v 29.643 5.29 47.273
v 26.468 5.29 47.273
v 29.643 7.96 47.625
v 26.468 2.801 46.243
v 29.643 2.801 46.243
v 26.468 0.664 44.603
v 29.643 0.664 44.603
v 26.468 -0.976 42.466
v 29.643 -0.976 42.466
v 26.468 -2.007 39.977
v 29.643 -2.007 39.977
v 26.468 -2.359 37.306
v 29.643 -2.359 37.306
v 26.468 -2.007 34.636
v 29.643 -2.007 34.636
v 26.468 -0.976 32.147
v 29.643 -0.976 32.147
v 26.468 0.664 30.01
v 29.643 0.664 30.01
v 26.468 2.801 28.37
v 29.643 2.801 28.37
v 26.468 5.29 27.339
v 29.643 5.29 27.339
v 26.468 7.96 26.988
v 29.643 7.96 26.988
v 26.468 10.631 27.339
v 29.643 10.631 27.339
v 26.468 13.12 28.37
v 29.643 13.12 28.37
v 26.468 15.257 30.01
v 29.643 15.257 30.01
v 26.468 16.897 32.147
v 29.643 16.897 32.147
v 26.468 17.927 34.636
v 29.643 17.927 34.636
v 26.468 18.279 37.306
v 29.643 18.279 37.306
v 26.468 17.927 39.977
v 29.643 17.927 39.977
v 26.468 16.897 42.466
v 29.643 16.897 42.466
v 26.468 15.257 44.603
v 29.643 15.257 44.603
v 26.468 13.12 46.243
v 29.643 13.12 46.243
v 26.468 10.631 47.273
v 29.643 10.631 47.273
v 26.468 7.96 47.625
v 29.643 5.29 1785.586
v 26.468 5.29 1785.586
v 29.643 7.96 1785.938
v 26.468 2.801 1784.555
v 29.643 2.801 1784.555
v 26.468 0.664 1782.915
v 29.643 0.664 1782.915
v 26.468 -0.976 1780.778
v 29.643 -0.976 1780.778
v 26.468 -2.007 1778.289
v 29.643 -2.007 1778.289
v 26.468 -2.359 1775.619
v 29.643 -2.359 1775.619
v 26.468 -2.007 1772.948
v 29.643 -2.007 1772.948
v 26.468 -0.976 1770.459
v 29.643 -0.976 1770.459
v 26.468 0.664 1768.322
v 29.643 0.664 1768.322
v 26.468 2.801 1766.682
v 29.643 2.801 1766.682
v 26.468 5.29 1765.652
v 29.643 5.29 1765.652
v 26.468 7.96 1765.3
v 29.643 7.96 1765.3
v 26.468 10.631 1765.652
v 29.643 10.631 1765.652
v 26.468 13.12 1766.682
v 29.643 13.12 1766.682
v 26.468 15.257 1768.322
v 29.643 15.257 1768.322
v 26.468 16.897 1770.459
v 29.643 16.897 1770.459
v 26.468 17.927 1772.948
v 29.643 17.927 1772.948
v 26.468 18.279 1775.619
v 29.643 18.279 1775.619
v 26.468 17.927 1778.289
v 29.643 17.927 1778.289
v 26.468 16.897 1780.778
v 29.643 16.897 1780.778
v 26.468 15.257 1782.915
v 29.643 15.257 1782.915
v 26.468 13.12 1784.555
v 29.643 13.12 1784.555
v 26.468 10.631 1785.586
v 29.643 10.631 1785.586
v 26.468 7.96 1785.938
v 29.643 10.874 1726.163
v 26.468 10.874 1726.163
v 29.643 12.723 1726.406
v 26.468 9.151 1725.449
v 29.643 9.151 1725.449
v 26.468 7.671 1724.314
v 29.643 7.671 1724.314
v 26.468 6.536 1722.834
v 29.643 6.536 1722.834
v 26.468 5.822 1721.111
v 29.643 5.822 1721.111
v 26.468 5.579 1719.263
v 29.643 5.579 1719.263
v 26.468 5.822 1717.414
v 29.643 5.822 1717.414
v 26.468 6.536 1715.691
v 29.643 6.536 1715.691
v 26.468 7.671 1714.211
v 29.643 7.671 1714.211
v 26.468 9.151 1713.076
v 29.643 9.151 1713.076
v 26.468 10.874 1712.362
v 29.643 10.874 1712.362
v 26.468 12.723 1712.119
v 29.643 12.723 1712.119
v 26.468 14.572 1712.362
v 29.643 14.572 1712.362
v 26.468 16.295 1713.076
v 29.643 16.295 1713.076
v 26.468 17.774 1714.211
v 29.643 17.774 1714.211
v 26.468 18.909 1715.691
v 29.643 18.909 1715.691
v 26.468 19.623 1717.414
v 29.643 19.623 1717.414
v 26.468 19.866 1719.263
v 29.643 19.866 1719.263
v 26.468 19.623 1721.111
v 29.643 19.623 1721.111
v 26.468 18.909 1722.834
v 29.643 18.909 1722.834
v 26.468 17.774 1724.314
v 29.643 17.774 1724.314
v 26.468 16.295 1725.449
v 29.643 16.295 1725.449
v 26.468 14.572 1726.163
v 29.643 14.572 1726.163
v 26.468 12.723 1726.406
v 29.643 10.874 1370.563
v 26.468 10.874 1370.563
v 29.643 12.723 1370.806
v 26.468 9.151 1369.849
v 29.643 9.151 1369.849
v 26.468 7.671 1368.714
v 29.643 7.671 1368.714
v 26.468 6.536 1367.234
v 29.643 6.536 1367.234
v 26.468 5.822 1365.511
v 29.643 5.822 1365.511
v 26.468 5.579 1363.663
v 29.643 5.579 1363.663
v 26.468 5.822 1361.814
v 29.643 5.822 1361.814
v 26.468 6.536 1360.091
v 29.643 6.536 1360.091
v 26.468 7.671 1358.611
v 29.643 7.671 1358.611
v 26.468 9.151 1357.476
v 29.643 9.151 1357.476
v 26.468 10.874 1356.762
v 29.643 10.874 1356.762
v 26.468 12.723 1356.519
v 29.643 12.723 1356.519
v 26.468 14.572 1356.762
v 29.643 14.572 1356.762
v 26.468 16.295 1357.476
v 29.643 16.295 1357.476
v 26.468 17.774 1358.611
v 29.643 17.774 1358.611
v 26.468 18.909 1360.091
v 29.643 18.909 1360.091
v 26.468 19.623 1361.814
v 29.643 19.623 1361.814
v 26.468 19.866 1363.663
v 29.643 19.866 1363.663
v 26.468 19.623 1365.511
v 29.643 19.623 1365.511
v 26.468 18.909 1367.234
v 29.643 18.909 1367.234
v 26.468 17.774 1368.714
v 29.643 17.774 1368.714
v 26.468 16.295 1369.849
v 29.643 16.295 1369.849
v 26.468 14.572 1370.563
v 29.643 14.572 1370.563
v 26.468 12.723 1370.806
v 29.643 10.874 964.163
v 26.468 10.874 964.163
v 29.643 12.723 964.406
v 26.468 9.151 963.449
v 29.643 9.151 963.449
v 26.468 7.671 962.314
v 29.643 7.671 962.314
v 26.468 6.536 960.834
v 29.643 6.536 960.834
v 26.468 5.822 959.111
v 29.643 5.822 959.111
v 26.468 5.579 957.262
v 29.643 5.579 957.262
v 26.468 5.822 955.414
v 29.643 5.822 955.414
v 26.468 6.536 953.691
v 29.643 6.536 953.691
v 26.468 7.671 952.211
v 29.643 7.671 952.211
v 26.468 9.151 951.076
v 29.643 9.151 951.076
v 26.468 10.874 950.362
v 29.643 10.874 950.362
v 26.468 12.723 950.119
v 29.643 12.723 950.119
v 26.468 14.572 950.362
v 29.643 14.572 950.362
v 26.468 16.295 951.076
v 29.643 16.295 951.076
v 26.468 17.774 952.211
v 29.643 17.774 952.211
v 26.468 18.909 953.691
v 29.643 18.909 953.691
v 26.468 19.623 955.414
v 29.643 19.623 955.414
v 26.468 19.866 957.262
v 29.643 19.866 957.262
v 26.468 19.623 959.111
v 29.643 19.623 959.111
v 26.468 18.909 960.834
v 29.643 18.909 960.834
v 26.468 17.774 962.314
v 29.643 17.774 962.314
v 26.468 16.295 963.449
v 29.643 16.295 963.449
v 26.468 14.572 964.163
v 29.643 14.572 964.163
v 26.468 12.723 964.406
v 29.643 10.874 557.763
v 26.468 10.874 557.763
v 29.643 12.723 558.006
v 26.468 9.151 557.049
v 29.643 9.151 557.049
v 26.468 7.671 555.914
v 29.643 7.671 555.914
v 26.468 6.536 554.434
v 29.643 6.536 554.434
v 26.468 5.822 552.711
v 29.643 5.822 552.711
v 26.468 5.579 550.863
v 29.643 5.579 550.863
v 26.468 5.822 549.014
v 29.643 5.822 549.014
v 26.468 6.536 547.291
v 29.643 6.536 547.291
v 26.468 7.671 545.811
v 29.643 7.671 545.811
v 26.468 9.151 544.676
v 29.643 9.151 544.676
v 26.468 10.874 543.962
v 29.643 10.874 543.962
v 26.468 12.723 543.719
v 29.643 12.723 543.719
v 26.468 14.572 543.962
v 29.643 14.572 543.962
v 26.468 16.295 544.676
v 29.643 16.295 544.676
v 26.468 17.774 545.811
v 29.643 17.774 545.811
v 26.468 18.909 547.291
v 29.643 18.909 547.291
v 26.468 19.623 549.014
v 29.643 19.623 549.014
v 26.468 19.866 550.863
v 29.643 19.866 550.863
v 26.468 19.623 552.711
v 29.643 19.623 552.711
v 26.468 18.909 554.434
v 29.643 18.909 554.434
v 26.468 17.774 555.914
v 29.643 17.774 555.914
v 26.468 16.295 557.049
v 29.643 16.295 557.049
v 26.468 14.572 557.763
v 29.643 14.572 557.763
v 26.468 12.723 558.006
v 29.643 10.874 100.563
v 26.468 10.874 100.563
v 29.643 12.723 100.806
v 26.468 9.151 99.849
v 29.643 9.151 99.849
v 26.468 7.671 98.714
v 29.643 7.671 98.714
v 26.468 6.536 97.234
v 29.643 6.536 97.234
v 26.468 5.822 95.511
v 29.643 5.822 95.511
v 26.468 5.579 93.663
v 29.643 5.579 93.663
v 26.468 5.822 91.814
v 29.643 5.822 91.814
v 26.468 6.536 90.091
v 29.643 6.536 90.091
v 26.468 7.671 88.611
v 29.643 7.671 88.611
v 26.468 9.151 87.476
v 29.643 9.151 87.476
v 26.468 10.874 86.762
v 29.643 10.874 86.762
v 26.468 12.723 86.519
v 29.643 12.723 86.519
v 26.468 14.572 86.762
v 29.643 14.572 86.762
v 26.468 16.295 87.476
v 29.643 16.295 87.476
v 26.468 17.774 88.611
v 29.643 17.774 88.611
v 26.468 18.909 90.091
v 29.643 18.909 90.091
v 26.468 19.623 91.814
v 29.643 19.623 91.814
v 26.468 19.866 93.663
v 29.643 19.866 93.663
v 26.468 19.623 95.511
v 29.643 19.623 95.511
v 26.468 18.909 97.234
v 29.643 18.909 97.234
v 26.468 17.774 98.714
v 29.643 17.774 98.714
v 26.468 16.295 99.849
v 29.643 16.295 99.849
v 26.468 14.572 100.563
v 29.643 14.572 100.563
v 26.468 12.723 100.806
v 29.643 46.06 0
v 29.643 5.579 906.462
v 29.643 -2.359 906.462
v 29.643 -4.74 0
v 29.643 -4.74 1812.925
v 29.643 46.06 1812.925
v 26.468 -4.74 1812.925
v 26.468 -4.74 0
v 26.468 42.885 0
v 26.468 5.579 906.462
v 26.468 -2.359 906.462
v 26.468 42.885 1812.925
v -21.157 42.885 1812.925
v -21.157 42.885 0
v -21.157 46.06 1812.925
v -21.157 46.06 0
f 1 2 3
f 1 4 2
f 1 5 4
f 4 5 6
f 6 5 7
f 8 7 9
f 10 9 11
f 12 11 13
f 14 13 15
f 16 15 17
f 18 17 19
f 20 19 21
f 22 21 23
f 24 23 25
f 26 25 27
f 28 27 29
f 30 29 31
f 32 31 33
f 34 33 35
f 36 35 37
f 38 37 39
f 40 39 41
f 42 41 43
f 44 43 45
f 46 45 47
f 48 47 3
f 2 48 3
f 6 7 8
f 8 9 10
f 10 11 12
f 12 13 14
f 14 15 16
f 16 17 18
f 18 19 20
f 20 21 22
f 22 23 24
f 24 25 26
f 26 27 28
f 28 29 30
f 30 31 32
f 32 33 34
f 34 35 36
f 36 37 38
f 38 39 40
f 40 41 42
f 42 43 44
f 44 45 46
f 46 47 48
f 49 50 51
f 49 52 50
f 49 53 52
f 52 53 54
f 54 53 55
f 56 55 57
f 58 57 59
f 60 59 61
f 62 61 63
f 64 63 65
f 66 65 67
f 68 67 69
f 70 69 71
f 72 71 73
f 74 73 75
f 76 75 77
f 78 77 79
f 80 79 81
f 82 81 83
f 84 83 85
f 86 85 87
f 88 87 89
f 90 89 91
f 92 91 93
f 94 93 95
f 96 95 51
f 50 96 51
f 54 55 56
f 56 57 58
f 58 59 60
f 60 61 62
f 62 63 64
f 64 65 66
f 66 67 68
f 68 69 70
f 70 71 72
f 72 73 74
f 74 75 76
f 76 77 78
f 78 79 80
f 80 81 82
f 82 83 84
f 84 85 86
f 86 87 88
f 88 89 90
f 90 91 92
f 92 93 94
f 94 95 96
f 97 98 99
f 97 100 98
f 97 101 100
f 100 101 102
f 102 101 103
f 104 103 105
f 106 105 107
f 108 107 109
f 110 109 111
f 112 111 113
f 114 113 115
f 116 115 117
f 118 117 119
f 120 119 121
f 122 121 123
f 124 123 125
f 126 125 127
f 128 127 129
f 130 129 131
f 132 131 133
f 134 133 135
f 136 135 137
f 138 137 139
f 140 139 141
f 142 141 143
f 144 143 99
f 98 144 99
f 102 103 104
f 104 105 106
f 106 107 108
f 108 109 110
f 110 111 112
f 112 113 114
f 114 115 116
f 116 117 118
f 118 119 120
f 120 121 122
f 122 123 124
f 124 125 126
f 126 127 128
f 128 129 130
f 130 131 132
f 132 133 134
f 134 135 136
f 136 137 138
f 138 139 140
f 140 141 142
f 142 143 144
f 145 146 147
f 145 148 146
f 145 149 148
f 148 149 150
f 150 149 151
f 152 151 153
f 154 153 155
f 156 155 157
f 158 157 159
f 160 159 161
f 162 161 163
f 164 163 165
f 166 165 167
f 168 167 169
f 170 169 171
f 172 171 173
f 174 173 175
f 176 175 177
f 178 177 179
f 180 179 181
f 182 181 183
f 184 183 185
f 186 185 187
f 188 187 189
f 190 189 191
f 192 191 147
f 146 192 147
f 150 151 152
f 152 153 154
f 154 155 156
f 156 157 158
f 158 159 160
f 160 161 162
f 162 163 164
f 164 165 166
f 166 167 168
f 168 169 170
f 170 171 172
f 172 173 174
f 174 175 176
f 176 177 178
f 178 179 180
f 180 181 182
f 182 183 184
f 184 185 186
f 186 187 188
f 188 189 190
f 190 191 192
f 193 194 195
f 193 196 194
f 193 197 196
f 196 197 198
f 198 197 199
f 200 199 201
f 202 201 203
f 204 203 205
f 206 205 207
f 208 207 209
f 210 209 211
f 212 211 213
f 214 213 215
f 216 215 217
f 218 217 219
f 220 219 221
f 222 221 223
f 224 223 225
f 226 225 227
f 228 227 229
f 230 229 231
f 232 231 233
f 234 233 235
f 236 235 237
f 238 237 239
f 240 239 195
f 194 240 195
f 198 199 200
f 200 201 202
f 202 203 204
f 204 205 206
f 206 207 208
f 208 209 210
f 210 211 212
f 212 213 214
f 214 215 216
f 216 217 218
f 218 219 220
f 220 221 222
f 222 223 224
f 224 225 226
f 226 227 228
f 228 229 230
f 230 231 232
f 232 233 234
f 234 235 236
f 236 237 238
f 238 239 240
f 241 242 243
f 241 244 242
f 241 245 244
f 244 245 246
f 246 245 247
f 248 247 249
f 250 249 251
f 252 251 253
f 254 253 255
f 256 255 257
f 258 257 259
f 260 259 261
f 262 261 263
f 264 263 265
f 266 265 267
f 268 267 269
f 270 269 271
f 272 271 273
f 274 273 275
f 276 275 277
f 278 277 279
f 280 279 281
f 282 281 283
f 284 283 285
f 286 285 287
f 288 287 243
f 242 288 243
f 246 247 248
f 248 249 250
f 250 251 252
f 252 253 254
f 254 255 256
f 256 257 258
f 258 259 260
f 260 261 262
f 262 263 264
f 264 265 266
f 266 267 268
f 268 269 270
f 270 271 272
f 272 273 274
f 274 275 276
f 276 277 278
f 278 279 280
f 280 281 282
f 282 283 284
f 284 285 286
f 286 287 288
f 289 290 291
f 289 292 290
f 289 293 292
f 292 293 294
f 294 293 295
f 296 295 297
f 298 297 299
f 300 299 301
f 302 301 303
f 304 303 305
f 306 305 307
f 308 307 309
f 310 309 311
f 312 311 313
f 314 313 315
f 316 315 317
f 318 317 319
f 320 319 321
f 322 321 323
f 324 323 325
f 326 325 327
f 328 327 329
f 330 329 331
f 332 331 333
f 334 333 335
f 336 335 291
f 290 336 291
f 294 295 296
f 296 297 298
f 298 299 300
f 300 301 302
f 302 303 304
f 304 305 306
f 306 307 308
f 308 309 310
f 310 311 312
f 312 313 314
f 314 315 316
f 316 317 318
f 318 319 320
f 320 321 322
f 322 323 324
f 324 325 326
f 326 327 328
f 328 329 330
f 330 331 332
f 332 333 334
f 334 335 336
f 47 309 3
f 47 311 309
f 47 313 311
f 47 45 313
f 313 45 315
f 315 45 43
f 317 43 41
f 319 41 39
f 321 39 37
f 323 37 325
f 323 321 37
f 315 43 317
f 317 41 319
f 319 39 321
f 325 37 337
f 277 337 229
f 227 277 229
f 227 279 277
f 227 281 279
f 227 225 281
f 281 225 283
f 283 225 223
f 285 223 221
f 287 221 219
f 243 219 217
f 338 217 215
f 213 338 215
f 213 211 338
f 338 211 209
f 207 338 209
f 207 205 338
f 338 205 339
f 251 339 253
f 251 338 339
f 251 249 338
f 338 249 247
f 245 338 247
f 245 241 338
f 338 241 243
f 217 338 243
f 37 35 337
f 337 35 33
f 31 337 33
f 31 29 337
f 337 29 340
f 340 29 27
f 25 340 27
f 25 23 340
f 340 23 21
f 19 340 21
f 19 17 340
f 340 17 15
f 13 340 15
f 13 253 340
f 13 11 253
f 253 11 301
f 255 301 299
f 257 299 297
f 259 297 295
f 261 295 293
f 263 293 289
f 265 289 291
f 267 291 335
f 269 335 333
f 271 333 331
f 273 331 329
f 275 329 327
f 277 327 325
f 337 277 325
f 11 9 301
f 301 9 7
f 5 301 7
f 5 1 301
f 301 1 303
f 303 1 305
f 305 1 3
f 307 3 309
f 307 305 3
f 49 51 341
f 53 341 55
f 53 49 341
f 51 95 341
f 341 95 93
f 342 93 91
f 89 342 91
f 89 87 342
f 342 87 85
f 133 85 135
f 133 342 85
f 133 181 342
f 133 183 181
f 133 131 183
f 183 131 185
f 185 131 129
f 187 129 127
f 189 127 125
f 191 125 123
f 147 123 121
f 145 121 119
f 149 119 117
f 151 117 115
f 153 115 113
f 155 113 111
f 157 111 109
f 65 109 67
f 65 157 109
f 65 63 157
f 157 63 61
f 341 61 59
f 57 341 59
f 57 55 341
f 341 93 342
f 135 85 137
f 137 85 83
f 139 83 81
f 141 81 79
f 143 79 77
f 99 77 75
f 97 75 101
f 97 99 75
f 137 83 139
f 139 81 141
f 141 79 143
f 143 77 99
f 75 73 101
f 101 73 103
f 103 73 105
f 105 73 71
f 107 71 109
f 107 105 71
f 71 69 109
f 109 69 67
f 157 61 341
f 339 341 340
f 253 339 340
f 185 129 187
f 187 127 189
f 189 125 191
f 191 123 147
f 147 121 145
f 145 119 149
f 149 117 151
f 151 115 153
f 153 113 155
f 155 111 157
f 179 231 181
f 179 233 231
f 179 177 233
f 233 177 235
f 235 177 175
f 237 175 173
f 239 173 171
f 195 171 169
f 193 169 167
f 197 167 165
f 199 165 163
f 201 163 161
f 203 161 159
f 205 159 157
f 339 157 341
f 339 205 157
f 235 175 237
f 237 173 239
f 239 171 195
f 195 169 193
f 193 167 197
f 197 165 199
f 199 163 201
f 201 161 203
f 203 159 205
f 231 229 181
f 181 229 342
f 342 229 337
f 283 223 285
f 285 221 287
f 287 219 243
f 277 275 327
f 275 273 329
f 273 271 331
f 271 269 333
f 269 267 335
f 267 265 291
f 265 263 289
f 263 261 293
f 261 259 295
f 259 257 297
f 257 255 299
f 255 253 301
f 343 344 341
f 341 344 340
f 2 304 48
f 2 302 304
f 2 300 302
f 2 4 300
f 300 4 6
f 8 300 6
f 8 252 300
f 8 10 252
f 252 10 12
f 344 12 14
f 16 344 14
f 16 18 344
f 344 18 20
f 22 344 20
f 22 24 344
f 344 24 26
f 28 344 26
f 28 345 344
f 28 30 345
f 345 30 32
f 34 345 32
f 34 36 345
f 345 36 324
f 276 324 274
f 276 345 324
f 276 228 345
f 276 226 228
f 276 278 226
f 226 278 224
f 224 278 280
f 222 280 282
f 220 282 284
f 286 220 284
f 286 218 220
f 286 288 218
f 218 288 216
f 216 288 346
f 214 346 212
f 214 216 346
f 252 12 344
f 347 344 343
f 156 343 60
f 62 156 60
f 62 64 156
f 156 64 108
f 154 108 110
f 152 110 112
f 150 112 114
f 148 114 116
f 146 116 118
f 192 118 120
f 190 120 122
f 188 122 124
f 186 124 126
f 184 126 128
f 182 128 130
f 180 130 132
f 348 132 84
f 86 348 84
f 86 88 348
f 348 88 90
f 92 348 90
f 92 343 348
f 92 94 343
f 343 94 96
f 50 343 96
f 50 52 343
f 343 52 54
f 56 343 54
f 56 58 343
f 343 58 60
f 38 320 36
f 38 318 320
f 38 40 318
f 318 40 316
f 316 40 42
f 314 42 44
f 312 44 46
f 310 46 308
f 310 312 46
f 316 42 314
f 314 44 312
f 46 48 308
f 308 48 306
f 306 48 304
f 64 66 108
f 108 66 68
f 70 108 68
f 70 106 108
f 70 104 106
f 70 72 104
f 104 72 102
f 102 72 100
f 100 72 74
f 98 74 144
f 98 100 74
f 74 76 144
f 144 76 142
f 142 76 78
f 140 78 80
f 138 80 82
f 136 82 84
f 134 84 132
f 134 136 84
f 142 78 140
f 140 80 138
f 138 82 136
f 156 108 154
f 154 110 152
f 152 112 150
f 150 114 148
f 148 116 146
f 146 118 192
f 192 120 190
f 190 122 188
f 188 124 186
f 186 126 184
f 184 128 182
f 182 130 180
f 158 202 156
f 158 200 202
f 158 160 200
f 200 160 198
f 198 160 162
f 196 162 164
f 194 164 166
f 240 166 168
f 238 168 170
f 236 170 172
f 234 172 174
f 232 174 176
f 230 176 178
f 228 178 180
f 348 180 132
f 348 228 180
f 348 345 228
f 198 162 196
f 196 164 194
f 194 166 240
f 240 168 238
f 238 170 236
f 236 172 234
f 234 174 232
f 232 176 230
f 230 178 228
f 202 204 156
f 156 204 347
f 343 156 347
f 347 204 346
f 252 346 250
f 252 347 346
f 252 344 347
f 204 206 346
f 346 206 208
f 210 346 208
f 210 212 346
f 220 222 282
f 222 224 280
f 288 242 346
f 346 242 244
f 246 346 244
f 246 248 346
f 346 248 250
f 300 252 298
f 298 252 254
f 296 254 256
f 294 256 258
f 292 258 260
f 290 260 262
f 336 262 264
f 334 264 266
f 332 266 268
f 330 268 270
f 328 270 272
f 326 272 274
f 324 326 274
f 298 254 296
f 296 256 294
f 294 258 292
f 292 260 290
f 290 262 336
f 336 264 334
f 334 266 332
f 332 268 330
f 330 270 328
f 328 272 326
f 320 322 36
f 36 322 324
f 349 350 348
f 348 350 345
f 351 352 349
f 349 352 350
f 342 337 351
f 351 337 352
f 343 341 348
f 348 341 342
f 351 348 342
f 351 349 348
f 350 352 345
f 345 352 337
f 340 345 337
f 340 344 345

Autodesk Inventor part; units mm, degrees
ref_plane "YZ Plane" through (0, 0, 0) normal (1, 0, 0) x (0, 1, 0)
ref_plane "XZ Plane" through (0, 0, 0) normal (0, 1, 0) x (-1, 0, 0)
ref_plane "XY Plane" through (0, 0, 0) normal (0, 0, 1) x (1, 0, 0)
sketch "Sketch1" plane through (0, 0, 0) normal (0, 0, 1) x (1, 0, 0)
  line L0 (-21.1568, 46.0602) -> (29.6432, 46.0602)
  line L1 (29.6432, 46.0602) -> (29.6432, -4.7398)
  line L2 (29.6432, -4.7398) -> (26.4682, -4.7398)
  line L3 (-21.1568, 42.8852) -> (-21.1568, 46.0602)
  line L4 (-21.1568, 42.8852) -> (26.4682, 42.8852)
  line L5 (26.4682, 42.8852) -> (26.4682, -4.7398)
  dimension "d0" = 50.8
  dimension "d1" = 50.8
  dimension "d2" = 3.175
  dimension "d3" = 3.175
extrude "Extrusion1" add sketch "Sketch1" along normal blind 1812.925
sketch "Sketch2" plane through (26.4682, -4.7398, 0) normal (-1, 0, 0) x (0, 0, 1)
  circle A0 centre (37.3062, 12.7) radius 10.3188
  circle A1 centre (93.6625, 17.4625) radius 7.1437
  line L0 (0, 50.8) -> (1812.925, 50.8) projected
  circle A2 centre (550.8625, 17.4625) radius 7.1437
  circle A3 centre (957.2625, 17.4625) radius 7.1437
  circle A4 centre (1363.6625, 17.4625) radius 7.1437
  circle A5 centre (1719.2625, 17.4625) radius 7.1437
  circle A6 centre (1775.6187, 12.7) radius 10.3188
  line L1 (1812.925, 0) -> (1812.925, 47.625) projected
  dimension "d8" = 20.6375
  dimension "d9" = 14.2875
  dimension "d12" = 38.1
  dimension "d13" = 33.3375
  dimension "d14" = 14.2875
  dimension "d15" = 14.2875
  dimension "d16" = 14.2875
  dimension "d17" = 14.2875
  dimension "d25" = 20.6375
  dimension "d26" = 38.1
  dimension "d27" = 37.3062
  dimension "d28" = 93.6625
  dimension "d29" = 449.2625
  dimension "d30" = 855.6625
  dimension "d31" = 1262.0625
  dimension "d32" = 1719.2625
  dimension "d33" = 1775.6188
extrude "Extrusion2" cut sketch "Sketch2" against normal blind 1812.925
equation "\"d14\" = d9"
equation "\"d15\" = d9"
equation "\"d16\" = d9"
equation "\"d17\" = d9"
equation "\"d25\" = d8"
equation "\"d26\" = d12"
properties part number "FE-00007-01"
